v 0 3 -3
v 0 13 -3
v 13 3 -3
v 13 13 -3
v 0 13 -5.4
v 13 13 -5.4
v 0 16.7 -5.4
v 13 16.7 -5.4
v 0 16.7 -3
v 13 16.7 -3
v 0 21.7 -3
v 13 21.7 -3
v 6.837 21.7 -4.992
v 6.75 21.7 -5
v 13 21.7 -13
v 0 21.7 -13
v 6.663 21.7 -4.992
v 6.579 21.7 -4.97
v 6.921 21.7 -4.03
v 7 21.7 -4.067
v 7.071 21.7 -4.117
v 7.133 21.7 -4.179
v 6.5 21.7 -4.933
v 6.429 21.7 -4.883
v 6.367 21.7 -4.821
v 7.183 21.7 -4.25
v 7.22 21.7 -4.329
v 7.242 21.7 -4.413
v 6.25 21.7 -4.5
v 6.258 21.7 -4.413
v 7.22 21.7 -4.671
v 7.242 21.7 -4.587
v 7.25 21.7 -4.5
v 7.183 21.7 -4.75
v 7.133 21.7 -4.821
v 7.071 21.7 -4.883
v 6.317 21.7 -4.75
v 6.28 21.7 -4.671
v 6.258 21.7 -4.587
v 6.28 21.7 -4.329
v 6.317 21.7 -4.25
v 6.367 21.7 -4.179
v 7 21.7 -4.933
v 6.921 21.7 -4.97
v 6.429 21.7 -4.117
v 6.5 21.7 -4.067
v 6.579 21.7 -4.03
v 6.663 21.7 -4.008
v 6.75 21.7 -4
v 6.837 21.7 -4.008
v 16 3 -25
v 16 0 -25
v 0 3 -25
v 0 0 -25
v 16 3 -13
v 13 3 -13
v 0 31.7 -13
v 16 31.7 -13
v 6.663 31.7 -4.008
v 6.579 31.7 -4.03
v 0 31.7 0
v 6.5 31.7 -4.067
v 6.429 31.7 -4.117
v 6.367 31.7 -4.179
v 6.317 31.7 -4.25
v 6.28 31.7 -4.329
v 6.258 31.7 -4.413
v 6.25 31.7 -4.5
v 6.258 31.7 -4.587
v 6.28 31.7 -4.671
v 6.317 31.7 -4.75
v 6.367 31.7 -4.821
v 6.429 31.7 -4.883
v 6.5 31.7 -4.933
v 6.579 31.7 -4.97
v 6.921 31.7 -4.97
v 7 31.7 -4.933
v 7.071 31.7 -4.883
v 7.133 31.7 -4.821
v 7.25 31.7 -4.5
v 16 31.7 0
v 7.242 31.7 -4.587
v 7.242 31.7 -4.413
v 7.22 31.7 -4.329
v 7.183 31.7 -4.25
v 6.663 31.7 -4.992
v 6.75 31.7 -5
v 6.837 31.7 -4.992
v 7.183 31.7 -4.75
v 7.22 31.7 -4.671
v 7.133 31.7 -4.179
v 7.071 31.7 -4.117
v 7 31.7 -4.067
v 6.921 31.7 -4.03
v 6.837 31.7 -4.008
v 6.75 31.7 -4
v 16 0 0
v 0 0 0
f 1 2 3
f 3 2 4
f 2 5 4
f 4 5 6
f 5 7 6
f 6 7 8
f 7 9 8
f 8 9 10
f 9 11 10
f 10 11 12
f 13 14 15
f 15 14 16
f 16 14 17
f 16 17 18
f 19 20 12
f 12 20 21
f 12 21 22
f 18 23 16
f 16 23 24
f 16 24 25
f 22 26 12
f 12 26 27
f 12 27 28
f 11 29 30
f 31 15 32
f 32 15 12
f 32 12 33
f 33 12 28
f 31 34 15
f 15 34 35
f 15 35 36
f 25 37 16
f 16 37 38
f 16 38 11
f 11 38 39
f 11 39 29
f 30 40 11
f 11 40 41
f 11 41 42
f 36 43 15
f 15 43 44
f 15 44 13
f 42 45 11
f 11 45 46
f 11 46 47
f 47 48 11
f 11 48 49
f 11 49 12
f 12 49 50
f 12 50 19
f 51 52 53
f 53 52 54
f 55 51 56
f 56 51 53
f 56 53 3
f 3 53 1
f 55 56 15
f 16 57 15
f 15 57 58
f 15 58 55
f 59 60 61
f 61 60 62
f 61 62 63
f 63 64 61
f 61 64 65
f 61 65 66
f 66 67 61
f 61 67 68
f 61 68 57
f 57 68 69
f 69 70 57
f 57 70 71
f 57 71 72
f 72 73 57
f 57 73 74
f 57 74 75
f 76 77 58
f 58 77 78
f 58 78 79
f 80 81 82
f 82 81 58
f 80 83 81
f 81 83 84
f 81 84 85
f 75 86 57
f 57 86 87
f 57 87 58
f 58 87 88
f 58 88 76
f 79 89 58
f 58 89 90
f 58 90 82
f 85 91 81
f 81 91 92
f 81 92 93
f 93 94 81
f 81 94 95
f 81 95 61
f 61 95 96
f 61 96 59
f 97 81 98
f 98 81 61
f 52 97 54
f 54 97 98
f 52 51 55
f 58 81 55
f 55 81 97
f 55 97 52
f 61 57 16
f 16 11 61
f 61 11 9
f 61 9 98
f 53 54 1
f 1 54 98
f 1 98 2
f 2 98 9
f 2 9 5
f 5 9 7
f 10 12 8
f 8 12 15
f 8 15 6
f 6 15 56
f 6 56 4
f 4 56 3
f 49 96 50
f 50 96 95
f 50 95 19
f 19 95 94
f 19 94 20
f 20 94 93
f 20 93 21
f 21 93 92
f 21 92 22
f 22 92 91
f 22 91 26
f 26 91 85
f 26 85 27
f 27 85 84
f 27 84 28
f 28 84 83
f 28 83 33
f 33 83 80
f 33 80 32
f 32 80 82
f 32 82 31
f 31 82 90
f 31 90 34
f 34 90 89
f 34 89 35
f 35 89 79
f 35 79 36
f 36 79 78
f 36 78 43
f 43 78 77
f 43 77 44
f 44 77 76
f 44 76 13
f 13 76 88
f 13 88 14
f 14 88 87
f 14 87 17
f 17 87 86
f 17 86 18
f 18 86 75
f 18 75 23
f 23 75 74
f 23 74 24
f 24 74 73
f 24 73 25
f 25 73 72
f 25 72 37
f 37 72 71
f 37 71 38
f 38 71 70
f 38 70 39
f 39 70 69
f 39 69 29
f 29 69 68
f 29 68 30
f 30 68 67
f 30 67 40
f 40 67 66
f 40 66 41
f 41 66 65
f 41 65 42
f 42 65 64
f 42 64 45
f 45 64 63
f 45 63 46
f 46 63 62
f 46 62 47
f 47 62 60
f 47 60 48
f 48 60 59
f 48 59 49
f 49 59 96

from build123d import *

# Parameters (mm, degrees)
BOSS_EXTRUDE1_DEPTH = 16
SKETCH2_W           = 10
SKETCH2_H           = 18.7
BOSS_EXTRUDE2_DEPTH = 3
CUT_EXTRUDE1_REACH  = 33.7
SKETCH3_R           = 0.5


with BuildPart() as part:
    # Sketch1 → Boss-Extrude1 (new body)
    with BuildSketch(Plane(origin=(0, 0, 0), x_dir=(0, 0, -1), z_dir=(1, 0, 0))):
        Polygon((25, 0), (0, 0), (0, 31.7), (5.035, 31.7), (13, 31.7), (13, 21.7), (3, 21.7), (3, 16.7), (5.4, 16.7), (5.4, 13), (3, 13), (3, 3), (25, 3), align=None)
    extrude(amount=BOSS_EXTRUDE1_DEPTH)

    # Sketch2 → Boss-Extrude2 (add)
    with BuildSketch(Plane(origin=(16, 0, 0), x_dir=(0, 0, -1), z_dir=(1, 0, 0))):
        with Locations((8, 12.35)):
            Rectangle(SKETCH2_W, SKETCH2_H)
    extrude(amount=-BOSS_EXTRUDE2_DEPTH)

    # Sketch3 → Cut-Extrude1 (cut, up to next)
    with BuildSketch(Plane(origin=(0, 31.7, 0), x_dir=(1, 0, 0), z_dir=(0, 1, 0)), mode=Mode.PRIVATE) as cut_extrude1_sk1:
        with Locations((6.75, 4.5)):
            Circle(SKETCH3_R)
    cut_extrude1_tool1 = extrude(cut_extrude1_sk1.sketch, amount=-CUT_EXTRUDE1_REACH, mode=Mode.PRIVATE) & part.part
    add(cut_extrude1_tool1.solids().sort_by_distance((6.75, 31.7, -4.5))[0], mode=Mode.SUBTRACT)


solid = part.part
